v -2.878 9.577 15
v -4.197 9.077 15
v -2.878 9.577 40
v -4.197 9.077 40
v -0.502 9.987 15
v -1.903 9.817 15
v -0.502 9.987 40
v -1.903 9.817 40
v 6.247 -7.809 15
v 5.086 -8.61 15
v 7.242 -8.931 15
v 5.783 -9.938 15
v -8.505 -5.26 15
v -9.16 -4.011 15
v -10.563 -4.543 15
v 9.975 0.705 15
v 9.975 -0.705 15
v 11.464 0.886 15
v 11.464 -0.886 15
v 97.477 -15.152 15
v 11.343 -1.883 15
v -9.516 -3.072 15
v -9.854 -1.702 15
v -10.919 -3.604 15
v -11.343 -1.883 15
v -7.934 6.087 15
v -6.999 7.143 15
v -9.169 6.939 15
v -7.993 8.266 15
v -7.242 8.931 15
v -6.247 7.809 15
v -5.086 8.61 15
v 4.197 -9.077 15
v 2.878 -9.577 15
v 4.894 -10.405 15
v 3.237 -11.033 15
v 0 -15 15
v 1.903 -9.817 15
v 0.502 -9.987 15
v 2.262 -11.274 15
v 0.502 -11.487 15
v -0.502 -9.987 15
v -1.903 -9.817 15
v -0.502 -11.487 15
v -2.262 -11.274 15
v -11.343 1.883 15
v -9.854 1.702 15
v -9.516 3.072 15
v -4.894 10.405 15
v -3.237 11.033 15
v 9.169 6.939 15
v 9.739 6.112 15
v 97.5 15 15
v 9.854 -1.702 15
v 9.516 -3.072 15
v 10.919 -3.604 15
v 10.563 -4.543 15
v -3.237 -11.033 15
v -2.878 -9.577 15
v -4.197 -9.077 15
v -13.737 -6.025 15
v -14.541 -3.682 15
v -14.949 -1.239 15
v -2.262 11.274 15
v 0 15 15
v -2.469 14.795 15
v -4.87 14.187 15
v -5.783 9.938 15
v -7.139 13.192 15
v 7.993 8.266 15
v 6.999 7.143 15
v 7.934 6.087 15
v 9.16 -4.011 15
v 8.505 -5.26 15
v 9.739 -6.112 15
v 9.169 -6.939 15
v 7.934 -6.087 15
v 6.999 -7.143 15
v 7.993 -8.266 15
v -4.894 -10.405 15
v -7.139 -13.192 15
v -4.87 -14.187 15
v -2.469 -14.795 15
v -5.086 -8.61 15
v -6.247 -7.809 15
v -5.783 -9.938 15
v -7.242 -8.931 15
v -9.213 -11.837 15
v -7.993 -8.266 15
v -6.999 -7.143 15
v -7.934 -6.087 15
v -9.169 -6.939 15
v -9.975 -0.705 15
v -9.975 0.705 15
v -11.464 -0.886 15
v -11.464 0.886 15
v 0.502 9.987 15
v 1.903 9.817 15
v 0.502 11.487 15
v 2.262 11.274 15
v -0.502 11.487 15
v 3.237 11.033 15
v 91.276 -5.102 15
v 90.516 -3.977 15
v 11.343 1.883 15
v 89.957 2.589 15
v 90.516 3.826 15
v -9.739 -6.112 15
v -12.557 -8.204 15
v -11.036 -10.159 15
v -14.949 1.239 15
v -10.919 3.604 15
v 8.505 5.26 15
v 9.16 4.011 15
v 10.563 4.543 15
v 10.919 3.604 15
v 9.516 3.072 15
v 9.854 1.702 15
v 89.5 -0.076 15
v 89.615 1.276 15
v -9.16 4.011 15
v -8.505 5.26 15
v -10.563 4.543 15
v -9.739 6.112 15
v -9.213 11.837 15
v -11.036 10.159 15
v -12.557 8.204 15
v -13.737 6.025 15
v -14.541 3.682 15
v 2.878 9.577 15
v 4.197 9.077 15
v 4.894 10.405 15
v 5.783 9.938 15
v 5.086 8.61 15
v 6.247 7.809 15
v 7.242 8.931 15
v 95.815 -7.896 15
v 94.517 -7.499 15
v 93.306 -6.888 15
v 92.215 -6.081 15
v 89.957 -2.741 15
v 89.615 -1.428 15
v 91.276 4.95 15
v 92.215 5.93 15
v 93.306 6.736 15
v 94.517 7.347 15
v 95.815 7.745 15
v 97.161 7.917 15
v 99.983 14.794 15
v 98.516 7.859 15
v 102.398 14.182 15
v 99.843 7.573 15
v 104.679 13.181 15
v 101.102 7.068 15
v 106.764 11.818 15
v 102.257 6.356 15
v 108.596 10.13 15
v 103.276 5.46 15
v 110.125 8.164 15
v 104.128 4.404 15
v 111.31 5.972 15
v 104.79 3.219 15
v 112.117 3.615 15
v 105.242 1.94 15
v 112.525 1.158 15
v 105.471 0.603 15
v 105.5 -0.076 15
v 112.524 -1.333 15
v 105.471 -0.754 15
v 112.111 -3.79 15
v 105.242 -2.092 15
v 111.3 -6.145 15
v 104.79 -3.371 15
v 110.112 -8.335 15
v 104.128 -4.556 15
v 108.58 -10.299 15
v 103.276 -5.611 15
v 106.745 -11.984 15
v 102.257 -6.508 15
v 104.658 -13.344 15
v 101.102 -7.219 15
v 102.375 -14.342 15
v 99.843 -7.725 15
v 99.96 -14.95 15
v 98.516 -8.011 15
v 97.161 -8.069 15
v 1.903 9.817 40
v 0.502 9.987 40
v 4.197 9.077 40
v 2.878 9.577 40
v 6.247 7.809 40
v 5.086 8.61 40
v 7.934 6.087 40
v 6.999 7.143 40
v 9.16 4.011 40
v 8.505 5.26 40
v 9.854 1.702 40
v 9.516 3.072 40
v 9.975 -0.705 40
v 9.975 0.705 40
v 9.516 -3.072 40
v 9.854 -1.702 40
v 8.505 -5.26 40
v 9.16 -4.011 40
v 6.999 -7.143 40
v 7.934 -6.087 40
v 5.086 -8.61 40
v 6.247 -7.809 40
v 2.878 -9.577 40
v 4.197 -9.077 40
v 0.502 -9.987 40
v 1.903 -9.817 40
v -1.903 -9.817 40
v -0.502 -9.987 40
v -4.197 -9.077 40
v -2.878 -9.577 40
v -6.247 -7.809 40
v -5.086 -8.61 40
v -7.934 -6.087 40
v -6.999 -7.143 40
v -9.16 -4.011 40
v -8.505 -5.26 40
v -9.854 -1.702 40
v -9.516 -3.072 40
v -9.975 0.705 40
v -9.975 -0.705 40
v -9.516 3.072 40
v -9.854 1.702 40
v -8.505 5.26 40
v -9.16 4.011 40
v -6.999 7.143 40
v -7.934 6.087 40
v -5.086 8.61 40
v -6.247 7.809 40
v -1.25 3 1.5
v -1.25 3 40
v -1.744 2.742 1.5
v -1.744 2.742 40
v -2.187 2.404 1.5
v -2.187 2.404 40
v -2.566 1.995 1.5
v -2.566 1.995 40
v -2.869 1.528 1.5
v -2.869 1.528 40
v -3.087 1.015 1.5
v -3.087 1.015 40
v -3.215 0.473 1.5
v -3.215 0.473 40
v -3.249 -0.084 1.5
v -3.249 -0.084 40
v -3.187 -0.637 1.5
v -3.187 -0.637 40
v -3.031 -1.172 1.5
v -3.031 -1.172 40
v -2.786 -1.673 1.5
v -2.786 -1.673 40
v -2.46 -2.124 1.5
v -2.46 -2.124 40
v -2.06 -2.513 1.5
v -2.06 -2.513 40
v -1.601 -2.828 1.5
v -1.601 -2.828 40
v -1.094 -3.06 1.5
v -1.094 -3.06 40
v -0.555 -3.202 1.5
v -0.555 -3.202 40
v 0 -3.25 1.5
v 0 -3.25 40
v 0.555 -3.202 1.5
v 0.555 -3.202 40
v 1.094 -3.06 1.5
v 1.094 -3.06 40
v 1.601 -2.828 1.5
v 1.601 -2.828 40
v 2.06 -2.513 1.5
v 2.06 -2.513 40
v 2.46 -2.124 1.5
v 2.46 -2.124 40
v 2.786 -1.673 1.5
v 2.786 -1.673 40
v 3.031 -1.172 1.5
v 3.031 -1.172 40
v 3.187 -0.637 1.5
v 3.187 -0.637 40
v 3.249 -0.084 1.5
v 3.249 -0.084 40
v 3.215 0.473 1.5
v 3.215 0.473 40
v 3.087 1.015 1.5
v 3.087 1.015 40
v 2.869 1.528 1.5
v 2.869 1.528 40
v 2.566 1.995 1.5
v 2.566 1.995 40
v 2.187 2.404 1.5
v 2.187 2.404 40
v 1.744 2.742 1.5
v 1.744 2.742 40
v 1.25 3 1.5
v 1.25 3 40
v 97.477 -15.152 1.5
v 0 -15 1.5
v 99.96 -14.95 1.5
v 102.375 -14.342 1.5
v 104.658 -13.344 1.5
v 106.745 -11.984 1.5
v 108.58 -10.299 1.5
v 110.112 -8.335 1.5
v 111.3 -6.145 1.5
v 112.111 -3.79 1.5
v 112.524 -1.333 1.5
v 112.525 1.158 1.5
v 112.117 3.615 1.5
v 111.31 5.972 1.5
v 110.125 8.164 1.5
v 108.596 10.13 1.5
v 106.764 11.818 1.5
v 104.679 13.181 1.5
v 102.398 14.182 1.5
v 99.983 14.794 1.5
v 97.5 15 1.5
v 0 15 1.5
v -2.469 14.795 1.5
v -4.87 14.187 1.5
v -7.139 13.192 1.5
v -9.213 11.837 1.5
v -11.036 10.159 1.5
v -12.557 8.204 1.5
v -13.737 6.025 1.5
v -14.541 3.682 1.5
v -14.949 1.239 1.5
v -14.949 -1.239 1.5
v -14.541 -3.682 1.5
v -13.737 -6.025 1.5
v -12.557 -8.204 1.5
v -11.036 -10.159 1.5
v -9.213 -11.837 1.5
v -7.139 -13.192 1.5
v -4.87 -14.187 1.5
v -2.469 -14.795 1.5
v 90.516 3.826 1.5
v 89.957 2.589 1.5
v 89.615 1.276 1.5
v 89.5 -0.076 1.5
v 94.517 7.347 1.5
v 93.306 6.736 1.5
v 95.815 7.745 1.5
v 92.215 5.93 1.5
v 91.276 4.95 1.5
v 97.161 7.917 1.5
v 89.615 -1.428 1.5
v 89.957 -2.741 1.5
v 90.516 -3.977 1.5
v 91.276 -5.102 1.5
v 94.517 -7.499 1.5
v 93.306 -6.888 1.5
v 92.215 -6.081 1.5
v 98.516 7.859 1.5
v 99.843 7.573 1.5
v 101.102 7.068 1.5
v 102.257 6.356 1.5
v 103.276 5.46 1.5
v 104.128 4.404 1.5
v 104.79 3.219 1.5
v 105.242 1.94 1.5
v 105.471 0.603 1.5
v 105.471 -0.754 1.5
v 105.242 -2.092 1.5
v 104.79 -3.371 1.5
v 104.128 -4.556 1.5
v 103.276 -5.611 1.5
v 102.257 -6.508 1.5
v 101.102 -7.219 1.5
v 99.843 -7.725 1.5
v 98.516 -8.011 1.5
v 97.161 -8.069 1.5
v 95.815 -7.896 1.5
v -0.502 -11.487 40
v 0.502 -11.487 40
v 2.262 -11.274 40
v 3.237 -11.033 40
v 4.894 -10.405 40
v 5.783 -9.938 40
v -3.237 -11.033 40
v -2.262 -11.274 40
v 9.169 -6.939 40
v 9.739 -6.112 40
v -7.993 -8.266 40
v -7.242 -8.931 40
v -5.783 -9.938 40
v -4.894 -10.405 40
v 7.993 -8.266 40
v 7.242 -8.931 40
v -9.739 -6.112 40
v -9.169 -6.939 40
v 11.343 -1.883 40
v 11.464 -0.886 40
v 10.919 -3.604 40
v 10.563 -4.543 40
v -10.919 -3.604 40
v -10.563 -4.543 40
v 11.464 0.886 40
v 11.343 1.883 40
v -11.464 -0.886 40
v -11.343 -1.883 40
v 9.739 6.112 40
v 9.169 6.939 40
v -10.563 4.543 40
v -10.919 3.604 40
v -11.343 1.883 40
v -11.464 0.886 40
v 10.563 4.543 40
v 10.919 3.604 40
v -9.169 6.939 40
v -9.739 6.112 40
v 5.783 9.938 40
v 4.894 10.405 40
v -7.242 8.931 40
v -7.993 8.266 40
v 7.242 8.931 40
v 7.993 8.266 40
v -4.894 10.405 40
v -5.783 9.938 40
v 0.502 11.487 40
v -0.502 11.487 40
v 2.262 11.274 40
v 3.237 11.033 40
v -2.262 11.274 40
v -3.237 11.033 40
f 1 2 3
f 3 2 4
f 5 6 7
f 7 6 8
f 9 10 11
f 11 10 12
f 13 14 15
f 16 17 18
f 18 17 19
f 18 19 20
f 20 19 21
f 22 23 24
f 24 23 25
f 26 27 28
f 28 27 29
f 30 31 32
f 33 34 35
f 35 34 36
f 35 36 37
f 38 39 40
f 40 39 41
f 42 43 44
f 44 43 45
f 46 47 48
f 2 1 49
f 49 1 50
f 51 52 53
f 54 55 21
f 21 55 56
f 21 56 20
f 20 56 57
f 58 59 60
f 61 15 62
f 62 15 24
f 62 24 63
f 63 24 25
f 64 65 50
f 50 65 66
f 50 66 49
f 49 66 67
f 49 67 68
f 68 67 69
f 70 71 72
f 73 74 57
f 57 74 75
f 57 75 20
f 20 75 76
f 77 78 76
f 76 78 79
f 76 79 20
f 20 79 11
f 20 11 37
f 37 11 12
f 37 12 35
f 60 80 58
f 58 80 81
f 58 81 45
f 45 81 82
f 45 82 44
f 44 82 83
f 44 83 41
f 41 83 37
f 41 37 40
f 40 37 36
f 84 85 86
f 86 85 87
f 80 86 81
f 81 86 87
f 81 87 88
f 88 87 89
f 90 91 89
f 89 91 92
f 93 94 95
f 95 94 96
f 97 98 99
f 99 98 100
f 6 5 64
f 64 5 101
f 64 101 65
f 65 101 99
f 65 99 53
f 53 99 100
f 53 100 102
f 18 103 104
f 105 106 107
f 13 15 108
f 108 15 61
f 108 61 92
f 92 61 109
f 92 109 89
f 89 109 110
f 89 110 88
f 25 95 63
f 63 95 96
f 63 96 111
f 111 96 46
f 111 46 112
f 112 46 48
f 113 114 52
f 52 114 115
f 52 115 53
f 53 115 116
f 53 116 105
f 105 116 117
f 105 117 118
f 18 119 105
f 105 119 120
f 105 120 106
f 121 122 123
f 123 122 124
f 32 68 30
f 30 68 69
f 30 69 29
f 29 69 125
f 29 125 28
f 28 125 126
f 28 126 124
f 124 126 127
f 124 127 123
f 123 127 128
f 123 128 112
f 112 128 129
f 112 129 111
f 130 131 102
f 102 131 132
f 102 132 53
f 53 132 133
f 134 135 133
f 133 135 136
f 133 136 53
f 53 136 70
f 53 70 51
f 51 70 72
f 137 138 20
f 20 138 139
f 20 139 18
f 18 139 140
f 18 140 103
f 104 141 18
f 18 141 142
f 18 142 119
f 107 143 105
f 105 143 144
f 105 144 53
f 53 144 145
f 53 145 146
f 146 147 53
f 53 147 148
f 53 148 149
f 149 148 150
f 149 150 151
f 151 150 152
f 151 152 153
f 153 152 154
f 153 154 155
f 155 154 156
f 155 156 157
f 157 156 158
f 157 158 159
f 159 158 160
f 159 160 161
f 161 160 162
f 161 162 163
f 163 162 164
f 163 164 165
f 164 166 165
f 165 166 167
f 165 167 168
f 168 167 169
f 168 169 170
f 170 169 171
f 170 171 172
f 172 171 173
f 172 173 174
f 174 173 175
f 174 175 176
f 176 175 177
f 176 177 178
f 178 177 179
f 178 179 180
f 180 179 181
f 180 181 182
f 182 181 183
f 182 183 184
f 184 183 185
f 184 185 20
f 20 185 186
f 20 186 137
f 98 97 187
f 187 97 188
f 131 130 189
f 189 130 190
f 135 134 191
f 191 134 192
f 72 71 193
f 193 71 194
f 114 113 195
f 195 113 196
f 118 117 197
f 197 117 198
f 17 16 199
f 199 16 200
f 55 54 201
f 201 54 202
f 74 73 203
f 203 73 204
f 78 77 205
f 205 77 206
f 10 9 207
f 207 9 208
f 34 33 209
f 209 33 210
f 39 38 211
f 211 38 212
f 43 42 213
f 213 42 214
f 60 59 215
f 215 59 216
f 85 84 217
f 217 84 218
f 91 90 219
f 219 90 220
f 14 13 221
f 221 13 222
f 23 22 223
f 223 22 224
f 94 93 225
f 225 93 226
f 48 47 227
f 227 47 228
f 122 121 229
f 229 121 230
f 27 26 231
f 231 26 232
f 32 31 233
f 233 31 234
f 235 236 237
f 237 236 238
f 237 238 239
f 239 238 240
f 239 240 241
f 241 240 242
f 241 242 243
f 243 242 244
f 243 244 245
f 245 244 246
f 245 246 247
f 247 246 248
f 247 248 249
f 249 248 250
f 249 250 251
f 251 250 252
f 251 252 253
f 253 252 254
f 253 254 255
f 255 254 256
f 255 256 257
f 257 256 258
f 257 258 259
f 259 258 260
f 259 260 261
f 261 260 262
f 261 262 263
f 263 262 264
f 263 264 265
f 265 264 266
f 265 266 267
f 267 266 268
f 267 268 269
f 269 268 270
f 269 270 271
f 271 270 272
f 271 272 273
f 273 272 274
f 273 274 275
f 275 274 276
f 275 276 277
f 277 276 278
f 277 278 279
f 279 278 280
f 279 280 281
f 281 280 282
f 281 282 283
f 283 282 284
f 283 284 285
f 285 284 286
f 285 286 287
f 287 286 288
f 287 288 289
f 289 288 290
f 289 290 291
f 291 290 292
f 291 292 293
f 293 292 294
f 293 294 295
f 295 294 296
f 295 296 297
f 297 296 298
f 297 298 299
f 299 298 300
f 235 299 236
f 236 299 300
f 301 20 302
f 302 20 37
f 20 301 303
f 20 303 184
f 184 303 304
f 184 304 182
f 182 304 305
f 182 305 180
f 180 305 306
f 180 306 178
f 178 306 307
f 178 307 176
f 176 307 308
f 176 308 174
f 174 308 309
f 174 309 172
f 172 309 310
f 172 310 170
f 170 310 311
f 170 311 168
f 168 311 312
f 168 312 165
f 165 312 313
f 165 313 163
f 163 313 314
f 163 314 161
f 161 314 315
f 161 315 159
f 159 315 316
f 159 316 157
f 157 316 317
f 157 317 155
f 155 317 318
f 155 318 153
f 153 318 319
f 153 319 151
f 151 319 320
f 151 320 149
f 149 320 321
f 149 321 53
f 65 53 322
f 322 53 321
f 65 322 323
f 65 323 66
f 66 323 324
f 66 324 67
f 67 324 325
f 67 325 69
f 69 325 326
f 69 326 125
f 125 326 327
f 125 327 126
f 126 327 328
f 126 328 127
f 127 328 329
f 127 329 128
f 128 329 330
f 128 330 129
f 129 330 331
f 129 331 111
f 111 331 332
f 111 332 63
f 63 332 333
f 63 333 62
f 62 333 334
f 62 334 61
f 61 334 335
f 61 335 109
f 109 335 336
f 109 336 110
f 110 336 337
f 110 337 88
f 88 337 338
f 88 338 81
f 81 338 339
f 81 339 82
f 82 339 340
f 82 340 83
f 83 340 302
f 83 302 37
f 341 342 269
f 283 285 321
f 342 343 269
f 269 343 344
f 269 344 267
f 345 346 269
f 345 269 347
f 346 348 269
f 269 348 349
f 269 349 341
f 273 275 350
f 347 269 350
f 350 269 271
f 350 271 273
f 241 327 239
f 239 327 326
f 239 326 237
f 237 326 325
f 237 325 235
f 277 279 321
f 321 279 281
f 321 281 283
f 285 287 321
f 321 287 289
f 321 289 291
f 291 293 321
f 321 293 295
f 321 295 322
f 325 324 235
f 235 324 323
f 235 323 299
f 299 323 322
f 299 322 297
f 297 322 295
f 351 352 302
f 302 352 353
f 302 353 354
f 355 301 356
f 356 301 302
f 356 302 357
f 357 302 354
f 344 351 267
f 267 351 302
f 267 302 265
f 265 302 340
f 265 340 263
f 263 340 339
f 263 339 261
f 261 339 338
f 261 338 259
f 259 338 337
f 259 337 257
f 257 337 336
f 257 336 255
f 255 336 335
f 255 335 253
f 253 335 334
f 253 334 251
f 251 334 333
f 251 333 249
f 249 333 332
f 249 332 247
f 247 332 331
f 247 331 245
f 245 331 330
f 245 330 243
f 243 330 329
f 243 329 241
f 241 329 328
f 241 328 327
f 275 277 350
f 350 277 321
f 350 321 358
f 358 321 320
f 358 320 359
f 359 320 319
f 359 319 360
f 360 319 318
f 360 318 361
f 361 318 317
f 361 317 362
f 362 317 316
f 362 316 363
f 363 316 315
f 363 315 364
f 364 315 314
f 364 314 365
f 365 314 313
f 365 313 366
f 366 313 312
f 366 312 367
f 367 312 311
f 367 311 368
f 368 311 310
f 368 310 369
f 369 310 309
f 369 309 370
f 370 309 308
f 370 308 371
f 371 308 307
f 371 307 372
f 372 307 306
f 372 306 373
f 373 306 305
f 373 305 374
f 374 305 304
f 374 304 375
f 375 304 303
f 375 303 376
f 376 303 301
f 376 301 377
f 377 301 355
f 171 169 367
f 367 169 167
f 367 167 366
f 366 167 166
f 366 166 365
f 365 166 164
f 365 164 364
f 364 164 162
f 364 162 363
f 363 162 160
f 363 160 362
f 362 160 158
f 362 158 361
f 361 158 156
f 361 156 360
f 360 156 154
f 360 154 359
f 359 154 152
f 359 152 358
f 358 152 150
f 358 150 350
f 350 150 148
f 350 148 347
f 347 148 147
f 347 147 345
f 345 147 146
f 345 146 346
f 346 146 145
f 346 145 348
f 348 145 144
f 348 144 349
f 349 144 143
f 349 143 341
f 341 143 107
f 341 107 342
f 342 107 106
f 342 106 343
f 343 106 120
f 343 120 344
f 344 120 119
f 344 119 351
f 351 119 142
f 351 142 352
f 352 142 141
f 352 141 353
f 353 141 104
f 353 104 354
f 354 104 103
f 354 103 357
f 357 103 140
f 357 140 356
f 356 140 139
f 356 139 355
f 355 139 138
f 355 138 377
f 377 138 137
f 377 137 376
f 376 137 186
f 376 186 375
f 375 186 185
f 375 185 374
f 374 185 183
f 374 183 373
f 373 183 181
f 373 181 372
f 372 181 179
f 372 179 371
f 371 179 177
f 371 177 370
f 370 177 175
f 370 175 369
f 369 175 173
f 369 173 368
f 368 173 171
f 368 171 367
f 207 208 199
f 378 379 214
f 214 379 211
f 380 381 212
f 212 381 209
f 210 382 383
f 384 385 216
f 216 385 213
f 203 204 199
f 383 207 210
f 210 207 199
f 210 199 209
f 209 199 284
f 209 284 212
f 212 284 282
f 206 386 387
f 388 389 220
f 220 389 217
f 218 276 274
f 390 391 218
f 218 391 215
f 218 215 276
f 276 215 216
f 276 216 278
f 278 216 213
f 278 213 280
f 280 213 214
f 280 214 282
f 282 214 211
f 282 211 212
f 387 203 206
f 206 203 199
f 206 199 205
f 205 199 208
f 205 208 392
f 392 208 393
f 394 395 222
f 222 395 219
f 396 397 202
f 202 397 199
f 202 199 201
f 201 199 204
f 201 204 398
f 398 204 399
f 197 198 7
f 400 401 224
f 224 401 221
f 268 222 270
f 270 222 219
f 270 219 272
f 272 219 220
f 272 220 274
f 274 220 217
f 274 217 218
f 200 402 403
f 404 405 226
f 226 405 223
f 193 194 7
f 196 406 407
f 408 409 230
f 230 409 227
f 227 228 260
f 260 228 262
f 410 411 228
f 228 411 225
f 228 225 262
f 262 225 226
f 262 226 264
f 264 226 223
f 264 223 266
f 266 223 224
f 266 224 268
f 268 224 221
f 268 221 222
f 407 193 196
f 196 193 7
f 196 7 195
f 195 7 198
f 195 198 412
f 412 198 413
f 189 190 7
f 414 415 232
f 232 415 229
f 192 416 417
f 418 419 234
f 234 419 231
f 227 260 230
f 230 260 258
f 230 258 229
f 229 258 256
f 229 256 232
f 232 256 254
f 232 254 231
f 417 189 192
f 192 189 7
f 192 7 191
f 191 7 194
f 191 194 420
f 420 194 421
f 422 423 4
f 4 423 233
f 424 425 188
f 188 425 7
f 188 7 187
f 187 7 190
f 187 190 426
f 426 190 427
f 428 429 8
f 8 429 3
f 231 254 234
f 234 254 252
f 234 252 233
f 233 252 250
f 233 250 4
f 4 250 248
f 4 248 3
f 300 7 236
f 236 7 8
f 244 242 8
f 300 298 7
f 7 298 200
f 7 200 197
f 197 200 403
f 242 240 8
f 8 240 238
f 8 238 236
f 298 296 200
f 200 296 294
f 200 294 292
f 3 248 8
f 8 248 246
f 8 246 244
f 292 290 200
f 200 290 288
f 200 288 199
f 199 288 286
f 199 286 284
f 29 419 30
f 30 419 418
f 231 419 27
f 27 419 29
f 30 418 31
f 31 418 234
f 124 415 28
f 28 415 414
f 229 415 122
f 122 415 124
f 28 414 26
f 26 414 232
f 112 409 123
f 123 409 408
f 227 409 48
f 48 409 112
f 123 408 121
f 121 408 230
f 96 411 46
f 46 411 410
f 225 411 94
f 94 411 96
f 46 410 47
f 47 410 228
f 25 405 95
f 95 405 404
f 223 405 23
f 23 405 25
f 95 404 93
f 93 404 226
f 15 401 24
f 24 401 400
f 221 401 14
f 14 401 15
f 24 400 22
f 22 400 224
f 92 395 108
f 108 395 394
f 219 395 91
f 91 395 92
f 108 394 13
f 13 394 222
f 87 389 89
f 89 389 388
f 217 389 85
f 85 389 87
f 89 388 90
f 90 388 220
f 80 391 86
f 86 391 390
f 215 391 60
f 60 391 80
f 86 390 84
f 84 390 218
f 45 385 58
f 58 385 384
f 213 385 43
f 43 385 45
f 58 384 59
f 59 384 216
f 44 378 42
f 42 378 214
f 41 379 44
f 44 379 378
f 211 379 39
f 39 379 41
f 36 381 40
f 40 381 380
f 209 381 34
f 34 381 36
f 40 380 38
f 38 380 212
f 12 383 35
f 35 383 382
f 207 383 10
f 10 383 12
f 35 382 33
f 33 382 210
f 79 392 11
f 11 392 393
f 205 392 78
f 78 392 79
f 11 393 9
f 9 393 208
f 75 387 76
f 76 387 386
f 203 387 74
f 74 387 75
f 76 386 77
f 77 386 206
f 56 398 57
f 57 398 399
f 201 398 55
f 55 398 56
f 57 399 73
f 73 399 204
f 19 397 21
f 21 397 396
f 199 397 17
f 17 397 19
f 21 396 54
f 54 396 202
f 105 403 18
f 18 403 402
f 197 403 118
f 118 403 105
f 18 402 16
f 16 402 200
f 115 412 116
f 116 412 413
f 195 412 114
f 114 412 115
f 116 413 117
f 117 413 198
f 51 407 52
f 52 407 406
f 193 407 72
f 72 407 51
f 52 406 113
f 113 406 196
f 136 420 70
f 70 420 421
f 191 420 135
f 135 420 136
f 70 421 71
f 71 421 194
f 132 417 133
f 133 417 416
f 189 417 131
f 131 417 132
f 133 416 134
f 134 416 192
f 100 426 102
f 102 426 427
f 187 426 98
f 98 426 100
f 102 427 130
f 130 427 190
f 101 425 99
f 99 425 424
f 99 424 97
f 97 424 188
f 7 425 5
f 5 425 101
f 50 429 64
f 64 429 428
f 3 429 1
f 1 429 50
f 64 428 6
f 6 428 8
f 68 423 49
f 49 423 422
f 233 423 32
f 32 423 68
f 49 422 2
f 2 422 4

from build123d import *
from build123d.topology import SkipClean

# Parameters (mm, degrees)
BOSS_EXTRUDE1_DEPTH     = 15
SKETCH2_R               = 10
SKETCH2_R_2             = 2.575
BOSS_EXTRUDE2_DEPTH     = 20
SKETCH4_W               = 241.678854034
SKETCH4_H               = 67.941669626
CUT_EXTRUDE2_DEPTH      = 1.5
SKETCH5_R               = 10
SKETCH5_R_2             = 2.575
BOSS_EXTRUDE3_DEPTH     = 10
SKETCH6_R               = 8
CUT_EXTRUDE3_DEPTH      = 122.635473657
BOSS_EXTRUDE4_DEPTH     = 13.5
CUT_EXTRUDE4_DEPTH      = 122.635473657
CUT_EXTRUDE4_DEPTH_BACK = 122.635473657
CUT_EXTRUDE5_START      = -5
SKETCH11_R              = 10
CUT_EXTRUDE5_DEPTH      = 5
BOSS_EXTRUDE5_START     = -25
BOSS_EXTRUDE5_DEPTH     = 25


with BuildPart() as part:
    # Sketch1 → Boss-Extrude1 (new body)
    with BuildSketch(Plane.XY):
        with BuildLine():
            Line((0, -15), (97.476715067, -15.151699694))
            ThreePointArc((97.476715067, -15.151699694), (112.576031495, -0.087589988), (97.500177084, 15))
            Line((97.500177084, 15), (0, 15))
            ThreePointArc((0, 15), (-15, 0), (0, -15))
        make_face()
        with BuildLine():
            ThreePointArc((32.500177084, 7.424141025), (25.000177084, -0.075858975), (32.500177084, -7.575858975))
            Line((32.500177084, -7.575858975), (97.500177084, -7.575858975))
            ThreePointArc((97.500177084, -7.575858975), (105.000177084, -0.075858975), (97.500177084, 7.424141025))
            Line((97.500177084, 7.424141025), (32.500177084, 7.424141025))
        make_face(mode=Mode.SUBTRACT)
    extrude(amount=BOSS_EXTRUDE1_DEPTH)

    # Sketch2 → Boss-Extrude2 (add)
    with BuildSketch(Plane.XY.offset(15)):
        Circle(SKETCH2_R)
        Circle(SKETCH2_R_2, mode=Mode.SUBTRACT)
    extrude(amount=BOSS_EXTRUDE2_DEPTH)

    # Sketch4 → Cut-Extrude2 (cut)
    with BuildSketch(Plane(origin=(0, 0, 0), x_dir=(-1, 0, 0), z_dir=(0, 0, -1))):
        Rectangle(SKETCH4_W, SKETCH4_H)
    extrude(amount=-CUT_EXTRUDE2_DEPTH, mode=Mode.SUBTRACT)

    # Sketch5 → Boss-Extrude3 (add)
    with BuildSketch(Plane.XY.offset(35)):
        Circle(SKETCH5_R)
        Circle(SKETCH5_R_2, mode=Mode.SUBTRACT)
    extrude(amount=BOSS_EXTRUDE3_DEPTH)

    # Sketch6 → Cut-Extrude3 (cut, through all)
    with BuildSketch(Plane(origin=(0, 0, 1.5), x_dir=(-1, 0, 0), z_dir=(0, 0, -1))):
        with Locations((-97.500177084, -0.075858975)):
            Circle(SKETCH6_R)
    extrude(amount=-CUT_EXTRUDE3_DEPTH, mode=Mode.SUBTRACT)

    # Sketch7 → Boss-Extrude4 (add)
    with SkipClean():  # the faces are left unmerged after this step: merging them gives an invalid solid
        with BuildSketch(Plane(origin=(0, 0, 1.5), x_dir=(-1, 0, 0), z_dir=(0, 0, -1))):
            with BuildLine():
                Line((-32.500177084, 7.424141025), (-94.716294903, 7.424141025))
                ThreePointArc((-94.716294903, 7.424141025), (-90.932412721, 4.491905388), (-89.500177084, -0.075858975))
                ThreePointArc((-89.500177084, -0.075858975), (-90.932412721, -4.643623338), (-94.716294903, -7.575858975))
                Line((-94.716294903, -7.575858975), (-32.500177084, -7.575858975))
                ThreePointArc((-32.500177084, -7.575858975), (-40.000177084, -0.075858975), (-32.500177084, 7.424141025))
            make_face()
            with BuildLine():
                ThreePointArc((-25.000177084, -0.075858975), (-27.196876225, 5.227441884), (-32.500177084, 7.424141025))
                ThreePointArc((-32.500177084, 7.424141025), (-40.000177084, -0.075858975), (-32.500177084, -7.575858975))
                ThreePointArc((-32.500177084, -7.575858975), (-27.196876225, -5.379159834), (-25.000177084, -0.075858975))
            make_face()
        extrude(amount=-BOSS_EXTRUDE4_DEPTH)

    # Sketch9 → Cut-Extrude4 (cut, two sides: drawn at the far end of the back side and taken through both)
    with SkipClean():  # the faces are left unmerged after this step: merging them gives an invalid solid
        with BuildSketch(Plane.XY.offset(45).offset(-CUT_EXTRUDE4_DEPTH_BACK)):
            with BuildLine():
                Line((-1.25, 3), (1.25, 3))
                ThreePointArc((1.25, 3), (0, -3.25), (-1.25, 3))
            make_face()
        extrude(amount=CUT_EXTRUDE4_DEPTH + CUT_EXTRUDE4_DEPTH_BACK, mode=Mode.SUBTRACT)

    # Sketch11 → Cut-Extrude5 (cut)
    with SkipClean():  # the faces are left unmerged after this step: merging them gives an invalid solid
        with BuildSketch(Plane.XY.offset(45).offset(CUT_EXTRUDE5_START)):
            Circle(SKETCH11_R)
        extrude(amount=CUT_EXTRUDE5_DEPTH, mode=Mode.SUBTRACT)

    # Sketch12 → Boss-Extrude5 (add)
    with SkipClean():  # the faces are left unmerged after this step: merging them gives an invalid solid
        with BuildSketch(Plane.XY.offset(40).offset(BOSS_EXTRUDE5_START)):
            with BuildLine():
                ThreePointArc((-6.998659787, 7.142741854), (-6.631226582, 7.485107482), (-6.247068007, 7.808594068))
                Line((-6.247068007, 7.808594068), (-7.241751994, 8.93136019))
                Line((-7.241751994, 8.93136019), (-7.993343774, 8.265507976))
                Line((-7.993343774, 8.265507976), (-6.998659787, 7.142741854))
            make_face()
            with BuildLine():
                ThreePointArc((-8.504661464, 5.260297841), (-8.229838659, 5.680647467), (-7.934258441, 6.086669286))
                Line((-7.934258441, 6.086669286), (-9.168734239, 6.938766406))
                Line((-9.168734239, 6.938766406), (-9.739137263, 6.112394961))
                Line((-9.739137263, 6.112394961), (-8.504661464, 5.260297841))
            make_face()
            with BuildLine():
                ThreePointArc((-9.516403131, 3.072144438), (-9.350162427, 3.54604887), (-9.160338614, 4.011009409))
                Line((-9.160338614, 4.011009409), (-10.562862978, 4.54291674))
                Line((-10.562862978, 4.54291674), (-10.918927495, 3.604051769))
                Line((-10.918927495, 3.604051769), (-9.516403131, 3.072144438))
            make_face()
            with BuildLine():
                ThreePointArc((-9.975086038, 0.705449167), (-9.927088741, 1.205366803), (-9.854053203, 1.702244245))
                Line((-9.854053203, 1.702244245), (-11.343116514, 1.883049266))
                Line((-11.343116514, 1.883049266), (-11.46414935, 0.886254187))
                Line((-11.46414935, 0.886254187), (-9.975086038, 0.705449167))
            make_face()
            with BuildLine():
                Line((-11.343116514, -1.883049266), (-9.854053203, -1.702244245))
                ThreePointArc((-9.854053203, -1.702244245), (-9.927088741, -1.205366803), (-9.975086038, -0.705449167))
                Line((-9.975086038, -0.705449167), (-11.46414935, -0.886254187))
                Line((-11.46414935, -0.886254187), (-11.343116514, -1.883049266))
            make_face()
            with BuildLine():
                Line((-10.562862978, -4.54291674), (-9.160338614, -4.011009409))
                ThreePointArc((-9.160338614, -4.011009409), (-9.350162427, -3.54604887), (-9.516403131, -3.072144438))
                Line((-9.516403131, -3.072144438), (-10.918927495, -3.604051769))
                Line((-10.918927495, -3.604051769), (-10.562862978, -4.54291674))
            make_face()
            with BuildLine():
                Line((-9.168734239, -6.938766406), (-7.934258441, -6.086669286))
                ThreePointArc((-7.934258441, -6.086669286), (-8.229838659, -5.680647467), (-8.504661464, -5.260297841))
                Line((-8.504661464, -5.260297841), (-9.739137263, -6.112394961))
                Line((-9.739137263, -6.112394961), (-9.168734239, -6.938766406))
            make_face()
            with BuildLine():
                Line((-7.241751994, -8.93136019), (-6.247068007, -7.808594068))
                ThreePointArc((-6.247068007, -7.808594068), (-6.631226582, -7.485107482), (-6.998659787, -7.142741854))
                Line((-6.998659787, -7.142741854), (-7.993343774, -8.265507976))
                Line((-7.993343774, -8.265507976), (-7.241751994, -8.93136019))
            make_face()
            with BuildLine():
                Line((-4.893905446, -10.404895784), (-4.196820687, -9.076711746))
                ThreePointArc((-4.196820687, -9.076711746), (-4.64723172, -8.854560257), (-5.085921441, -8.610075673))
                Line((-5.085921441, -8.610075673), (-5.783006199, -9.938259711))
                Line((-5.783006199, -9.938259711), (-4.893905446, -10.404895784))
            make_face()
            with BuildLine():
                Line((-2.261642901, -11.273736656), (-1.902669405, -9.817323929))
                ThreePointArc((-1.902669405, -9.817323929), (-2.393156643, -9.709418174), (-2.877607828, -9.57702319))
                Line((-2.877607828, -9.57702319), (-3.236581325, -11.033435916))
                Line((-3.236581325, -11.033435916), (-2.261642901, -11.273736656))
            make_face()
            with BuildLine():
                ThreePointArc((0.502058108, -9.987388931), (0.251108235, -9.996846736), (0, -10))
                Line((0, -10), (0, -11.487388931))
                Line((0, -11.487388931), (0.502058108, -11.487388931))
                Line((0.502058108, -11.487388931), (0.502058108, -9.987388931))
            make_face()
            with BuildLine():
                Line((0, -11.487388931), (0, -10))
                ThreePointArc((0, -10), (-0.251108235, -9.996846736), (-0.502058108, -9.987388931))
                Line((-0.502058108, -9.987388931), (-0.502058108, -11.487388931))
                Line((-0.502058108, -11.487388931), (0, -11.487388931))
            make_face()
            with BuildLine():
                ThreePointArc((2.877607828, -9.57702319), (2.393156643, -9.709418174), (1.902669405, -9.817323929))
                Line((1.902669405, -9.817323929), (2.261642901, -11.273736656))
                Line((2.261642901, -11.273736656), (3.236581325, -11.033435916))
                Line((3.236581325, -11.033435916), (2.877607828, -9.57702319))
            make_face()
            with BuildLine():
                ThreePointArc((5.085921441, -8.610075673), (4.64723172, -8.854560257), (4.196820687, -9.076711746))
                Line((4.196820687, -9.076711746), (4.893905446, -10.404895784))
                Line((4.893905446, -10.404895784), (5.783006199, -9.938259711))
                Line((5.783006199, -9.938259711), (5.085921441, -8.610075673))
            make_face()
            with BuildLine():
                ThreePointArc((6.998659787, -7.142741854), (6.631226582, -7.485107482), (6.247068007, -7.808594068))
                Line((6.247068007, -7.808594068), (7.241751994, -8.93136019))
                Line((7.241751994, -8.93136019), (7.993343774, -8.265507976))
                Line((7.993343774, -8.265507976), (6.998659787, -7.142741854))
            make_face()
            with BuildLine():
                ThreePointArc((8.504661464, -5.260297841), (8.229838659, -5.680647467), (7.934258441, -6.086669286))
                Line((7.934258441, -6.086669286), (9.168734239, -6.938766406))
                Line((9.168734239, -6.938766406), (9.739137263, -6.112394961))
                Line((9.739137263, -6.112394961), (8.504661464, -5.260297841))
            make_face()
            with BuildLine():
                ThreePointArc((9.516403131, -3.072144438), (9.350162427, -3.54604887), (9.160338614, -4.011009409))
                Line((9.160338614, -4.011009409), (10.562862978, -4.54291674))
                Line((10.562862978, -4.54291674), (10.918927495, -3.604051769))
                Line((10.918927495, -3.604051769), (9.516403131, -3.072144438))
            make_face()
            with BuildLine():
                ThreePointArc((9.975086038, -0.705449167), (9.927088741, -1.205366803), (9.854053203, -1.702244245))
                Line((9.854053203, -1.702244245), (11.343116514, -1.883049266))
                Line((11.343116514, -1.883049266), (11.46414935, -0.886254187))
                Line((11.46414935, -0.886254187), (9.975086038, -0.705449167))
            make_face()
            with BuildLine():
                Line((11.343116514, 1.883049266), (9.854053203, 1.702244245))
                ThreePointArc((9.854053203, 1.702244245), (9.927088741, 1.205366803), (9.975086038, 0.705449167))
                Line((9.975086038, 0.705449167), (11.46414935, 0.886254187))
                Line((11.46414935, 0.886254187), (11.343116514, 1.883049266))
            make_face()
            with BuildLine():
                Line((10.562862978, 4.54291674), (9.160338614, 4.011009409))
                ThreePointArc((9.160338614, 4.011009409), (9.350162427, 3.54604887), (9.516403131, 3.072144438))
                Line((9.516403131, 3.072144438), (10.918927495, 3.604051769))
                Line((10.918927495, 3.604051769), (10.562862978, 4.54291674))
            make_face()
            with BuildLine():
                Line((9.168734239, 6.938766406), (7.934258441, 6.086669286))
                ThreePointArc((7.934258441, 6.086669286), (8.229838659, 5.680647467), (8.504661464, 5.260297841))
                Line((8.504661464, 5.260297841), (9.739137263, 6.112394961))
                Line((9.739137263, 6.112394961), (9.168734239, 6.938766406))
            make_face()
            with BuildLine():
                Line((7.241751994, 8.93136019), (6.247068007, 7.808594068))
                ThreePointArc((6.247068007, 7.808594068), (6.631226582, 7.485107482), (6.998659787, 7.142741854))
                Line((6.998659787, 7.142741854), (7.993343774, 8.265507976))
                Line((7.993343774, 8.265507976), (7.241751994, 8.93136019))
            make_face()
            with BuildLine():
                Line((4.893905446, 10.404895784), (4.196820687, 9.076711746))
                ThreePointArc((4.196820687, 9.076711746), (4.64723172, 8.854560257), (5.085921441, 8.610075673))
                Line((5.085921441, 8.610075673), (5.783006199, 9.938259711))
                Line((5.783006199, 9.938259711), (4.893905446, 10.404895784))
            make_face()
            with BuildLine():
                Line((2.261642901, 11.273736656), (1.902669405, 9.817323929))
                ThreePointArc((1.902669405, 9.817323929), (2.393156643, 9.709418174), (2.877607828, 9.57702319))
                Line((2.877607828, 9.57702319), (3.236581325, 11.033435916))
                Line((3.236581325, 11.033435916), (2.261642901, 11.273736656))
            make_face()
            with BuildLine():
                Line((0.502058108, 11.487388931), (0, 11.487388931))
                Line((0, 11.487388931), (0, 10))
                ThreePointArc((0, 10), (0.251108235, 9.996846736), (0.502058108, 9.987388931))
                Line((0.502058108, 9.987388931), (0.502058108, 11.487388931))
            make_face()
            with BuildLine():
                Line((0, 10), (0, 11.487388931))
                Line((0, 11.487388931), (-0.502058108, 11.487388931))
                Line((-0.502058108, 11.487388931), (-0.502058108, 9.987388931))
                ThreePointArc((-0.502058108, 9.987388931), (-0.251108235, 9.996846736), (0, 10))
            make_face()
            with BuildLine():
                ThreePointArc((-2.877607828, 9.57702319), (-2.393156643, 9.709418174), (-1.902669405, 9.817323929))
                Line((-1.902669405, 9.817323929), (-2.261642901, 11.273736656))
                Line((-2.261642901, 11.273736656), (-3.236581325, 11.033435916))
                Line((-3.236581325, 11.033435916), (-2.877607828, 9.57702319))
            make_face()
            with BuildLine():
                ThreePointArc((-5.085921441, 8.610075673), (-4.64723172, 8.854560257), (-4.196820687, 9.076711746))
                Line((-4.196820687, 9.076711746), (-4.893905446, 10.404895784))
                Line((-4.893905446, 10.404895784), (-5.783006199, 9.938259711))
                Line((-5.783006199, 9.938259711), (-5.085921441, 8.610075673))
            make_face()
        extrude(amount=BOSS_EXTRUDE5_DEPTH)


solid = part.part
